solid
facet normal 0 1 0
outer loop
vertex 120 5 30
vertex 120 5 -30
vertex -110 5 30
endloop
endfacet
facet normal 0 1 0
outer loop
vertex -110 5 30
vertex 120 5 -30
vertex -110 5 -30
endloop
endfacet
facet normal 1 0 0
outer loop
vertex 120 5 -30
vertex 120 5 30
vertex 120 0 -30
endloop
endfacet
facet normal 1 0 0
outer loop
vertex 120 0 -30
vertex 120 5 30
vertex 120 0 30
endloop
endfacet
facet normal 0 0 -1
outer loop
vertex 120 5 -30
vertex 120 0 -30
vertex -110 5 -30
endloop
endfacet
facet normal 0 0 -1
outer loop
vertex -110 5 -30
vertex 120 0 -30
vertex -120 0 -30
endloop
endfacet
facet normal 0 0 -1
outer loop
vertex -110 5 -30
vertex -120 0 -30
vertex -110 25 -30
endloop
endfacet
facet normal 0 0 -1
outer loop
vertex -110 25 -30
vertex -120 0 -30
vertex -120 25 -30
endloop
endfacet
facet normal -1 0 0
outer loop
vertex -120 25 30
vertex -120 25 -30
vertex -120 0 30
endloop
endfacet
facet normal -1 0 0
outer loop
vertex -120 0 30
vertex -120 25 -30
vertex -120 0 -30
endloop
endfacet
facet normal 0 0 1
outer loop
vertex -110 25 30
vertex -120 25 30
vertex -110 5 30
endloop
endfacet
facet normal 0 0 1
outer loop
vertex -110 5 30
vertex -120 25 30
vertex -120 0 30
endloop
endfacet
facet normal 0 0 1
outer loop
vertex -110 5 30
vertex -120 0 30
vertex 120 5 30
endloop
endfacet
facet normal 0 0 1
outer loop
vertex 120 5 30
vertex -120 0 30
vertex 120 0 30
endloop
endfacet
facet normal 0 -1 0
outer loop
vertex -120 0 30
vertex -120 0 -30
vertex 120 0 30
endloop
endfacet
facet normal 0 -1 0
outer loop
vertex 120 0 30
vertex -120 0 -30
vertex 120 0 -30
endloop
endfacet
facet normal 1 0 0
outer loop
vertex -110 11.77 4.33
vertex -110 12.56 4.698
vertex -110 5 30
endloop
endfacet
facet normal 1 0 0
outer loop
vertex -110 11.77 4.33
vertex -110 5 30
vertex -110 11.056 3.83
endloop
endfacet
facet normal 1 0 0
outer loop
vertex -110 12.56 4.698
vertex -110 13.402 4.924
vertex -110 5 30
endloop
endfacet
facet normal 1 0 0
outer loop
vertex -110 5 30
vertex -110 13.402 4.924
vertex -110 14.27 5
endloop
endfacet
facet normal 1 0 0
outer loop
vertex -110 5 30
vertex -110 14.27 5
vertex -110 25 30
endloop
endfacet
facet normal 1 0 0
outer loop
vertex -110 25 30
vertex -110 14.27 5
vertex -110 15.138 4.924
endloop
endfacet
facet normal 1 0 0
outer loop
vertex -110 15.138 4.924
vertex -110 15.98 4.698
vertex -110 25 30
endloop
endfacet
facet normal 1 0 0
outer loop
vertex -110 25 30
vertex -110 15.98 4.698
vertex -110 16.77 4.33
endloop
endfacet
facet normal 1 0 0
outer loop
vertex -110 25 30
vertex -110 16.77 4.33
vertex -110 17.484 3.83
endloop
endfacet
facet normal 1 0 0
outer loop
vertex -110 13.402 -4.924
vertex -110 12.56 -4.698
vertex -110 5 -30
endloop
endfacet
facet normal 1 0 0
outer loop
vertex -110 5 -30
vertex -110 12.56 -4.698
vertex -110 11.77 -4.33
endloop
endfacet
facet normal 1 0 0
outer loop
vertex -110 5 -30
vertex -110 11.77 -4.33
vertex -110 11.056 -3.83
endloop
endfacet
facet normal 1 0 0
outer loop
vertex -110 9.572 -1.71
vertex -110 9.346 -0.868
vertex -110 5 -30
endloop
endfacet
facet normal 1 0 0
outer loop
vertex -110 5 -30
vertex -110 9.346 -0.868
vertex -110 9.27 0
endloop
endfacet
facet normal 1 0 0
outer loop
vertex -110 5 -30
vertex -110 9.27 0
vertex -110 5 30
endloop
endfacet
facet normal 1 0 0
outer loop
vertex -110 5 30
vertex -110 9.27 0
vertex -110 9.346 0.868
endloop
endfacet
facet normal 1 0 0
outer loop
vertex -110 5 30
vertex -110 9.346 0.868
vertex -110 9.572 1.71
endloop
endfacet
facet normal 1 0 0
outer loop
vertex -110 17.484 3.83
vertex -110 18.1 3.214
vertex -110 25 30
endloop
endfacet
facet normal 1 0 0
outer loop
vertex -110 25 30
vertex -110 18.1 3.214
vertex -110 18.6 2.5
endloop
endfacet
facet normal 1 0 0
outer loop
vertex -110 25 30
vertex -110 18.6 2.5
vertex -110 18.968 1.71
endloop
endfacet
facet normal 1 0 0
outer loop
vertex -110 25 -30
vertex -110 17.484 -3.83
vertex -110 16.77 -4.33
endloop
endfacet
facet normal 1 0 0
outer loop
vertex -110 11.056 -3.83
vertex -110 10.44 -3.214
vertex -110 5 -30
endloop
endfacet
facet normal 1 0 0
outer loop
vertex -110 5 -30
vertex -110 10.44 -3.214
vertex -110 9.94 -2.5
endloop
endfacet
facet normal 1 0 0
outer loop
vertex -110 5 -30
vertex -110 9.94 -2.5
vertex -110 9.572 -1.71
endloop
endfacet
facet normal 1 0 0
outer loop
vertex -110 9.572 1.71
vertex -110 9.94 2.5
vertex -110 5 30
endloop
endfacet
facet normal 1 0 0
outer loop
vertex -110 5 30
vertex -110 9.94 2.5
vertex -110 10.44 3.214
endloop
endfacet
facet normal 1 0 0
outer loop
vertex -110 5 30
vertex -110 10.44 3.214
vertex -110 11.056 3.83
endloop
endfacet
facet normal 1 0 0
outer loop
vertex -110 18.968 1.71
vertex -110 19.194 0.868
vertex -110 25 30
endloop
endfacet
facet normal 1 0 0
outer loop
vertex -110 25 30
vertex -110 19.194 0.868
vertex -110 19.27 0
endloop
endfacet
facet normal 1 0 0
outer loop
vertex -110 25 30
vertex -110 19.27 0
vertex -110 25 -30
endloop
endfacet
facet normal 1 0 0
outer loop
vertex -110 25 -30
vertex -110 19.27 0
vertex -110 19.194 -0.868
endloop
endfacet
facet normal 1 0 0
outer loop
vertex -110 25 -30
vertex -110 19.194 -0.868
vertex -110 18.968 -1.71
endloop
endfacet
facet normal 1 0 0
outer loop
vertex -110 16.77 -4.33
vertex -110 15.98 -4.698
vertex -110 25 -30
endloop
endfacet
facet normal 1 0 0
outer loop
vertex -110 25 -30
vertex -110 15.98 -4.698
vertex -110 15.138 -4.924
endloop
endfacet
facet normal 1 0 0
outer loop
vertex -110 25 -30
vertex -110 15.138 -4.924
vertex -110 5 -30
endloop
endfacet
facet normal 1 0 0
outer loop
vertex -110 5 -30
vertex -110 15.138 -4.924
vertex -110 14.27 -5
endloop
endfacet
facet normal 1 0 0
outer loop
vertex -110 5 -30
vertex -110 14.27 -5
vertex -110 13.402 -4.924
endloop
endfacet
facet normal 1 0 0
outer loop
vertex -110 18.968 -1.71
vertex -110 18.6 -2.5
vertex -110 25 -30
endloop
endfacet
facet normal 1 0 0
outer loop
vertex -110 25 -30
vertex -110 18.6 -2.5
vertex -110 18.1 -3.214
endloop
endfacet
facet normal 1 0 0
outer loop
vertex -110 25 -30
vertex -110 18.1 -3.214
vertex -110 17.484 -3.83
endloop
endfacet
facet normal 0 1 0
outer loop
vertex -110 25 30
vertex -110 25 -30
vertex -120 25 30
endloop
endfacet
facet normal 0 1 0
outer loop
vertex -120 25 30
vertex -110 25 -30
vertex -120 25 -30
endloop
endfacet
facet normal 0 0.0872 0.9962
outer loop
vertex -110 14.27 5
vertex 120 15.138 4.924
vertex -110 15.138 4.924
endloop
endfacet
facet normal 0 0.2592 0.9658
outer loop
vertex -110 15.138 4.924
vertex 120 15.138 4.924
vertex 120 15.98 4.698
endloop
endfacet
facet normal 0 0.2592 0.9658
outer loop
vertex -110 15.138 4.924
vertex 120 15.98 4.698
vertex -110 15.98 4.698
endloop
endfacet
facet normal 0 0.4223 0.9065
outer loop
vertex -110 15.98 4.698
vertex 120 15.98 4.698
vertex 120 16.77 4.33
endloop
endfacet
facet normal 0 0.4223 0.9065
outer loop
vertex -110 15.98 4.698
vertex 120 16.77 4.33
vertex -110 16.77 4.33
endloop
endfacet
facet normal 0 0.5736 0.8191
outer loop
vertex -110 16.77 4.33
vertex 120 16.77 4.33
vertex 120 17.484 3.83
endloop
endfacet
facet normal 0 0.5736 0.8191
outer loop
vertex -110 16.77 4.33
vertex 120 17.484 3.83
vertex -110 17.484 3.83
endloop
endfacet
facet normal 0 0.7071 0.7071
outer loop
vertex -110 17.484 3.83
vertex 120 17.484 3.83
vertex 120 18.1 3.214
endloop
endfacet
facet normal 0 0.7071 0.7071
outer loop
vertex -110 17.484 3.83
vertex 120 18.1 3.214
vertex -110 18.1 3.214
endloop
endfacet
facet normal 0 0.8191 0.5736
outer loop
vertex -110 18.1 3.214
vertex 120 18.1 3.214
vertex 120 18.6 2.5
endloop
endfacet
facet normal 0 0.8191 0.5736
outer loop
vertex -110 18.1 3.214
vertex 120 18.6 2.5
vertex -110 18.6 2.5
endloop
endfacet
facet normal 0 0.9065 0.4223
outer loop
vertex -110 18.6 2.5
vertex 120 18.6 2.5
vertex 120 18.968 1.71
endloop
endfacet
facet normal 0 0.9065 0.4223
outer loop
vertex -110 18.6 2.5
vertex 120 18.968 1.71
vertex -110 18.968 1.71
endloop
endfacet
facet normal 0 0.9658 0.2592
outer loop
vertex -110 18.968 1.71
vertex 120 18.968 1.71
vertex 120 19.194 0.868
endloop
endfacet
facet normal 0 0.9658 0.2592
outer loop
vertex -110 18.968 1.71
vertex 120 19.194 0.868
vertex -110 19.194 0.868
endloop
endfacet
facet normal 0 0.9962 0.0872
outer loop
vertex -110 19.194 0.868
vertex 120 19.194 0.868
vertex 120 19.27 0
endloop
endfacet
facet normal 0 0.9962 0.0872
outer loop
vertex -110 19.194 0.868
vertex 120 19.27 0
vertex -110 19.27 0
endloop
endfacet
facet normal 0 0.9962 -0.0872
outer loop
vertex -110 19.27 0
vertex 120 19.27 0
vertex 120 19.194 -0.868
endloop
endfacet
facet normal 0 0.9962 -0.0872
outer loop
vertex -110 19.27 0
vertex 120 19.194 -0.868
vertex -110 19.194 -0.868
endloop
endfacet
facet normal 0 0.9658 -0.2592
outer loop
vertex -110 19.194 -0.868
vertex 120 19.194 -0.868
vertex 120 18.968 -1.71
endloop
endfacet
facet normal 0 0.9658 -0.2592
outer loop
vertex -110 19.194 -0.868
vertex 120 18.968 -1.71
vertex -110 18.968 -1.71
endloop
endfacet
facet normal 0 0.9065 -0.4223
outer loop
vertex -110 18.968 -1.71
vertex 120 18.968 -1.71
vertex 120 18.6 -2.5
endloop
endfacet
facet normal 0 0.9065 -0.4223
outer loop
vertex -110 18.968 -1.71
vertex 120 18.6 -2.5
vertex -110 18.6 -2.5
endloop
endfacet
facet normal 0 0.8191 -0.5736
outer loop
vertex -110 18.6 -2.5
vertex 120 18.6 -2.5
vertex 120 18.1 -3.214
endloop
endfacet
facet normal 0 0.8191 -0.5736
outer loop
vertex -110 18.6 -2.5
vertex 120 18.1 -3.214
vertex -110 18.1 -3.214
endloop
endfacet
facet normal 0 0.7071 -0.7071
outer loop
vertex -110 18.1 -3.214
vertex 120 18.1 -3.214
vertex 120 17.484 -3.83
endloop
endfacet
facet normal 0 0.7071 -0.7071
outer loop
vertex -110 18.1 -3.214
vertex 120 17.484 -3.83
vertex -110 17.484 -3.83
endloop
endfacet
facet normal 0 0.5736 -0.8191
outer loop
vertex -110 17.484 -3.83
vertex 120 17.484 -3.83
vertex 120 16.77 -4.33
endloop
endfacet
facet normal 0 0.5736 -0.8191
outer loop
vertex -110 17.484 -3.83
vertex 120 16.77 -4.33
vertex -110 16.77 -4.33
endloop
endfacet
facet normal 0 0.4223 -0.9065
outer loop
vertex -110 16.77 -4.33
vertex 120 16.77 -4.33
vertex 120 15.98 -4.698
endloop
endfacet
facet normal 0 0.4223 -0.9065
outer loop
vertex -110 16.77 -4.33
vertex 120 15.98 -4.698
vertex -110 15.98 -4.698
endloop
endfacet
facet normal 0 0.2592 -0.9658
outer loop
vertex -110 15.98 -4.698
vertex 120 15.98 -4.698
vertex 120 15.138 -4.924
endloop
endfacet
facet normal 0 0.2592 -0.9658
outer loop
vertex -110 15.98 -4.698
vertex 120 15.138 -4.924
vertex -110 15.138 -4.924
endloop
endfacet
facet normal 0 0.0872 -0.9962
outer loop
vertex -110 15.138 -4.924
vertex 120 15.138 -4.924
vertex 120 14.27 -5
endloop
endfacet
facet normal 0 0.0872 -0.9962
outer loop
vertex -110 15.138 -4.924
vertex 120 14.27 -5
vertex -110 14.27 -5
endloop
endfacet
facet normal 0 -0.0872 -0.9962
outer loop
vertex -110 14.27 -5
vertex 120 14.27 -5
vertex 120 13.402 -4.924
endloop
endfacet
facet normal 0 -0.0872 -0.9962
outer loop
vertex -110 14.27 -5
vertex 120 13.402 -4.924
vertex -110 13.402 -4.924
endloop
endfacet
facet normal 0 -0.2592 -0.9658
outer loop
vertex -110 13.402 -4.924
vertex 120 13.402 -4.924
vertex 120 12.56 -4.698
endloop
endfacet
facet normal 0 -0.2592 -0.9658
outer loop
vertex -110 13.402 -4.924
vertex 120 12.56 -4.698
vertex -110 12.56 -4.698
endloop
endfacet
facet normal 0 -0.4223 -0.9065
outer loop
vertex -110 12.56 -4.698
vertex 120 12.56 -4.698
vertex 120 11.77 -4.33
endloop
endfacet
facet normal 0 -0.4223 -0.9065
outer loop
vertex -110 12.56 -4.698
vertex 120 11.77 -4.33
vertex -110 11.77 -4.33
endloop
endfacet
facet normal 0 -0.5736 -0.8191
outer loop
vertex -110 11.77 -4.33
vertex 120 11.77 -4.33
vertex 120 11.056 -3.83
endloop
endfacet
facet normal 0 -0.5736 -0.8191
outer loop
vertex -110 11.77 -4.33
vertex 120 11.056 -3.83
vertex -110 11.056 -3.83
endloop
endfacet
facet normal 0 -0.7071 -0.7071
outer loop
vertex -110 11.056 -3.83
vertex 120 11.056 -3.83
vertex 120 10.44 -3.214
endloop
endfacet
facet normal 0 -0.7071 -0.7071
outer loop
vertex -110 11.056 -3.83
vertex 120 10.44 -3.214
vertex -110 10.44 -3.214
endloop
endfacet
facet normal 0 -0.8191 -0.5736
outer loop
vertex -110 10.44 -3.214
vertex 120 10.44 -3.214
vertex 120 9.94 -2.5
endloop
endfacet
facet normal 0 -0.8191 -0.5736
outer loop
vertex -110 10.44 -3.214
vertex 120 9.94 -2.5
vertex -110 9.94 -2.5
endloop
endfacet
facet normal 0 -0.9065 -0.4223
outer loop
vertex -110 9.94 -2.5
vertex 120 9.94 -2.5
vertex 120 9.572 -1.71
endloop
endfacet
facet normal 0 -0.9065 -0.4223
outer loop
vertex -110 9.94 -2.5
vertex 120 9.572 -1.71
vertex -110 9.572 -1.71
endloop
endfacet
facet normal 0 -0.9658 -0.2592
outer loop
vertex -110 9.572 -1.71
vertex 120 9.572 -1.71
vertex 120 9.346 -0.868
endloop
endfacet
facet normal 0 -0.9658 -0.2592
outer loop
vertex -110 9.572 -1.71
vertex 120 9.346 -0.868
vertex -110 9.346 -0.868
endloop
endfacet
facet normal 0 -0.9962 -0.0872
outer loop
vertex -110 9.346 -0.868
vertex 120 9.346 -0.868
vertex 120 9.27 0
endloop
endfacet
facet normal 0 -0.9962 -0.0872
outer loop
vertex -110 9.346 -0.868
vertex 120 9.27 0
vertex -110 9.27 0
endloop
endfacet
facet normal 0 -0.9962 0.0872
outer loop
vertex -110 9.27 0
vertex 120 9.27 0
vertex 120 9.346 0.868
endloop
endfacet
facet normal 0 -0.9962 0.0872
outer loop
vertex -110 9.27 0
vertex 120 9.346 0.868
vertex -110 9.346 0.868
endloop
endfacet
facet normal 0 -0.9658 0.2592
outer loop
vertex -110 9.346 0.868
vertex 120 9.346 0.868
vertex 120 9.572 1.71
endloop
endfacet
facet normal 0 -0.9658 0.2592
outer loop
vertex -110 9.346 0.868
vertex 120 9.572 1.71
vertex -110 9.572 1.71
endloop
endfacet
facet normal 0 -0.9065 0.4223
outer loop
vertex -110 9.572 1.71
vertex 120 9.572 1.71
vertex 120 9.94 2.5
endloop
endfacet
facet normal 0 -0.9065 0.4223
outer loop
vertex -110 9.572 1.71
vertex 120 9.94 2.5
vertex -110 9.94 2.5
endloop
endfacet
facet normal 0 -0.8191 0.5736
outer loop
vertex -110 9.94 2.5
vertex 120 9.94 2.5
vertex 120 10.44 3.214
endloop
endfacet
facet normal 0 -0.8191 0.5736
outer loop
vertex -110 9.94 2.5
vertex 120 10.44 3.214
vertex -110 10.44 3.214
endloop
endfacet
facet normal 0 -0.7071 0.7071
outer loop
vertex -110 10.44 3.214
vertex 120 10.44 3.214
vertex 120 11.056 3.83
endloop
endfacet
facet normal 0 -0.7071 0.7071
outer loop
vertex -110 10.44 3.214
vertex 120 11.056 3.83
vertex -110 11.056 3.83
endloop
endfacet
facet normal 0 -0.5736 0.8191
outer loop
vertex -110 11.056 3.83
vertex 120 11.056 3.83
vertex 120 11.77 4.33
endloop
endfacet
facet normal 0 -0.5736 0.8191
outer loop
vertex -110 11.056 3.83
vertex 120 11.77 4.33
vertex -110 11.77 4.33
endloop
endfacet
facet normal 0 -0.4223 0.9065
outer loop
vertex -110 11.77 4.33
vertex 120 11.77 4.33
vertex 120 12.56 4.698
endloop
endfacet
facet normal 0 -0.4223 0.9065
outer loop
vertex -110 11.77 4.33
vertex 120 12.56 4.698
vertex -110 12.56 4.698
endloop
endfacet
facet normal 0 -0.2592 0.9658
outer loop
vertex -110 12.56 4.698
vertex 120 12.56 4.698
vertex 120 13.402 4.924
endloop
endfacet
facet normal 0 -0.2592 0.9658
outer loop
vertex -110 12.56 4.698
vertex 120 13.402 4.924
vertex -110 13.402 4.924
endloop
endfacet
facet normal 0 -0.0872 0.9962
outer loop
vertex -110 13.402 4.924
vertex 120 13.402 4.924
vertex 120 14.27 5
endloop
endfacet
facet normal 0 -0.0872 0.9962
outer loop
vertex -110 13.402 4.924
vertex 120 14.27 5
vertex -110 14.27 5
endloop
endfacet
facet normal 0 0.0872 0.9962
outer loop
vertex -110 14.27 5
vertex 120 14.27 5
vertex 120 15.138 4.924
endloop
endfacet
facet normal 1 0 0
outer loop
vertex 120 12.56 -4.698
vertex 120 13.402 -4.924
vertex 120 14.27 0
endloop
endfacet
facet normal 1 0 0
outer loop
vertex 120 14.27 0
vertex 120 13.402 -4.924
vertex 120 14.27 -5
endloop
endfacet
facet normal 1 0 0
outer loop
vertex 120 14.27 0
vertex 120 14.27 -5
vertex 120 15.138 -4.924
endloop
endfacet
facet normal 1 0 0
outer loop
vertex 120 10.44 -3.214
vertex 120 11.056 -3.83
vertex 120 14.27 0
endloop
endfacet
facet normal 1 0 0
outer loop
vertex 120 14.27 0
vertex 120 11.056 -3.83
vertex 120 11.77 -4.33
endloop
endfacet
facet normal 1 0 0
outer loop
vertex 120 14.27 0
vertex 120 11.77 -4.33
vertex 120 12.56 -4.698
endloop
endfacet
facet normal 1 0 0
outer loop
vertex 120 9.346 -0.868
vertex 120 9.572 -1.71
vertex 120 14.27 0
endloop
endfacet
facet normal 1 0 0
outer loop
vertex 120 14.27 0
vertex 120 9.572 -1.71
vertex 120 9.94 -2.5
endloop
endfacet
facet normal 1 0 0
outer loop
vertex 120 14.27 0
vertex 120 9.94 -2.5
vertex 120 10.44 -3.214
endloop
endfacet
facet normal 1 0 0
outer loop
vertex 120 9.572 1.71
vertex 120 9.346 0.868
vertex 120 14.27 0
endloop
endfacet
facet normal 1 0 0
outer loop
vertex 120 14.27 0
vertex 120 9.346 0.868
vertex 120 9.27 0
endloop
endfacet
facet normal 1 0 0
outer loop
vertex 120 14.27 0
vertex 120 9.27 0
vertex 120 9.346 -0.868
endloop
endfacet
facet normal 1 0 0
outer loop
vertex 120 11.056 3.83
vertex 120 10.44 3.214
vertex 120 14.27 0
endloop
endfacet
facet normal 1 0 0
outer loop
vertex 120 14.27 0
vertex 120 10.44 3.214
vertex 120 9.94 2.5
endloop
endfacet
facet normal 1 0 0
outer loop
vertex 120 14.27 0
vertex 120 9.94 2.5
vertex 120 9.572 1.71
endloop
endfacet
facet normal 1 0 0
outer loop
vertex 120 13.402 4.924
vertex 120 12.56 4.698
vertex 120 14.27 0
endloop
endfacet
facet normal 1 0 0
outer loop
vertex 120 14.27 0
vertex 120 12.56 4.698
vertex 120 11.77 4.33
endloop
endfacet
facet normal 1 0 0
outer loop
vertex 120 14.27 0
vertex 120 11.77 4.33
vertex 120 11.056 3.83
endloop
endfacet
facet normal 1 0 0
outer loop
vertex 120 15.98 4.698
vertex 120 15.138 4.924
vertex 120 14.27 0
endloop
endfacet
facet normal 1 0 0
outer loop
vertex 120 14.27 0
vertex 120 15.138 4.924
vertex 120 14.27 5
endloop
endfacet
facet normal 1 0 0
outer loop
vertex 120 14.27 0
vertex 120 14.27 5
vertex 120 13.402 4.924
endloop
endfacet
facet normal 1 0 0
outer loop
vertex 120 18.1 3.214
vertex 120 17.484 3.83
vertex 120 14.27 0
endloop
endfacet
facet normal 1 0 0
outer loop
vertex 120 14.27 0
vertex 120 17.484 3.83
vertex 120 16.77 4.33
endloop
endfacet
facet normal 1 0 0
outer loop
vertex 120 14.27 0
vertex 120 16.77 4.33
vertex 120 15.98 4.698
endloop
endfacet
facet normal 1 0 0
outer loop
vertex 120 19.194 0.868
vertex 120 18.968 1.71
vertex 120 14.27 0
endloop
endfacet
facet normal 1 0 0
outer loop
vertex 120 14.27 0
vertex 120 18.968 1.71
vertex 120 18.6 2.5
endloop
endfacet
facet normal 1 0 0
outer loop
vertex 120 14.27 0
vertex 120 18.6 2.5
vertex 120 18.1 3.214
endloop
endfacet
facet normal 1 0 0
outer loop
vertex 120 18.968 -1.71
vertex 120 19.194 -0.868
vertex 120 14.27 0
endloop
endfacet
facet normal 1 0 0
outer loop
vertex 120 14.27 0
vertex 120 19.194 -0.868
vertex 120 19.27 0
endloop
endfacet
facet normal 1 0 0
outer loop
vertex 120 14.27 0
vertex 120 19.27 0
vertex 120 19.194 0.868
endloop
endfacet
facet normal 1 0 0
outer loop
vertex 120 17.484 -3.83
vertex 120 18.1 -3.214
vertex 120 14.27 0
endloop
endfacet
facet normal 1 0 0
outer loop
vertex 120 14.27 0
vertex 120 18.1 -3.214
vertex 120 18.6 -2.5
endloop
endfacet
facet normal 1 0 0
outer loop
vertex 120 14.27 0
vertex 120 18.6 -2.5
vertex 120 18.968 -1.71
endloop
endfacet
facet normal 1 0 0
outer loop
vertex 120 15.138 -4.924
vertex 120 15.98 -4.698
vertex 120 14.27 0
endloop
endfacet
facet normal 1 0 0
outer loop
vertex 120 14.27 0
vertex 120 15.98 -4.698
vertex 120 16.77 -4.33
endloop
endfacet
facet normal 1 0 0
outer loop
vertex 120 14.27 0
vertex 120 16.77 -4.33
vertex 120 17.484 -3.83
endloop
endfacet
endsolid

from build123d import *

# Parameters (mm, degrees)
SKETCH1_W           = 240
SKETCH1_H           = 60
BOSS_EXTRUDE1_DEPTH = 5
SKETCH2_W           = 10
SKETCH2_H           = 60
BOSS_EXTRUDE2_DEPTH = 20
SKETCH3_R           = 5
BOSS_EXTRUDE3_DEPTH = 230


with BuildPart() as part:
    # Sketch1 → Boss-Extrude1 (new body)
    with BuildSketch(Plane(origin=(0, 0, 0), x_dir=(1, 0, 0), z_dir=(0, 1, 0))):
        Rectangle(SKETCH1_W, SKETCH1_H)
    extrude(amount=BOSS_EXTRUDE1_DEPTH)

    # Sketch2 → Boss-Extrude2 (add)
    with BuildSketch(Plane(origin=(0, 5, 0), x_dir=(1, 0, 0), z_dir=(0, 1, 0))):
        with Locations((-115, 0)):
            Rectangle(SKETCH2_W, SKETCH2_H)
    extrude(amount=BOSS_EXTRUDE2_DEPTH)

    # Sketch3 → Boss-Extrude3 (add, through all)
    with BuildSketch(Plane(origin=(-110, 0, 0), x_dir=(0, 0, -1), z_dir=(1, 0, 0))):
        with Locations(Location((0, 14.27, 0), (0, 0, 180))):
            Circle(SKETCH3_R)
    extrude(amount=BOSS_EXTRUDE3_DEPTH)


solid = part.part
